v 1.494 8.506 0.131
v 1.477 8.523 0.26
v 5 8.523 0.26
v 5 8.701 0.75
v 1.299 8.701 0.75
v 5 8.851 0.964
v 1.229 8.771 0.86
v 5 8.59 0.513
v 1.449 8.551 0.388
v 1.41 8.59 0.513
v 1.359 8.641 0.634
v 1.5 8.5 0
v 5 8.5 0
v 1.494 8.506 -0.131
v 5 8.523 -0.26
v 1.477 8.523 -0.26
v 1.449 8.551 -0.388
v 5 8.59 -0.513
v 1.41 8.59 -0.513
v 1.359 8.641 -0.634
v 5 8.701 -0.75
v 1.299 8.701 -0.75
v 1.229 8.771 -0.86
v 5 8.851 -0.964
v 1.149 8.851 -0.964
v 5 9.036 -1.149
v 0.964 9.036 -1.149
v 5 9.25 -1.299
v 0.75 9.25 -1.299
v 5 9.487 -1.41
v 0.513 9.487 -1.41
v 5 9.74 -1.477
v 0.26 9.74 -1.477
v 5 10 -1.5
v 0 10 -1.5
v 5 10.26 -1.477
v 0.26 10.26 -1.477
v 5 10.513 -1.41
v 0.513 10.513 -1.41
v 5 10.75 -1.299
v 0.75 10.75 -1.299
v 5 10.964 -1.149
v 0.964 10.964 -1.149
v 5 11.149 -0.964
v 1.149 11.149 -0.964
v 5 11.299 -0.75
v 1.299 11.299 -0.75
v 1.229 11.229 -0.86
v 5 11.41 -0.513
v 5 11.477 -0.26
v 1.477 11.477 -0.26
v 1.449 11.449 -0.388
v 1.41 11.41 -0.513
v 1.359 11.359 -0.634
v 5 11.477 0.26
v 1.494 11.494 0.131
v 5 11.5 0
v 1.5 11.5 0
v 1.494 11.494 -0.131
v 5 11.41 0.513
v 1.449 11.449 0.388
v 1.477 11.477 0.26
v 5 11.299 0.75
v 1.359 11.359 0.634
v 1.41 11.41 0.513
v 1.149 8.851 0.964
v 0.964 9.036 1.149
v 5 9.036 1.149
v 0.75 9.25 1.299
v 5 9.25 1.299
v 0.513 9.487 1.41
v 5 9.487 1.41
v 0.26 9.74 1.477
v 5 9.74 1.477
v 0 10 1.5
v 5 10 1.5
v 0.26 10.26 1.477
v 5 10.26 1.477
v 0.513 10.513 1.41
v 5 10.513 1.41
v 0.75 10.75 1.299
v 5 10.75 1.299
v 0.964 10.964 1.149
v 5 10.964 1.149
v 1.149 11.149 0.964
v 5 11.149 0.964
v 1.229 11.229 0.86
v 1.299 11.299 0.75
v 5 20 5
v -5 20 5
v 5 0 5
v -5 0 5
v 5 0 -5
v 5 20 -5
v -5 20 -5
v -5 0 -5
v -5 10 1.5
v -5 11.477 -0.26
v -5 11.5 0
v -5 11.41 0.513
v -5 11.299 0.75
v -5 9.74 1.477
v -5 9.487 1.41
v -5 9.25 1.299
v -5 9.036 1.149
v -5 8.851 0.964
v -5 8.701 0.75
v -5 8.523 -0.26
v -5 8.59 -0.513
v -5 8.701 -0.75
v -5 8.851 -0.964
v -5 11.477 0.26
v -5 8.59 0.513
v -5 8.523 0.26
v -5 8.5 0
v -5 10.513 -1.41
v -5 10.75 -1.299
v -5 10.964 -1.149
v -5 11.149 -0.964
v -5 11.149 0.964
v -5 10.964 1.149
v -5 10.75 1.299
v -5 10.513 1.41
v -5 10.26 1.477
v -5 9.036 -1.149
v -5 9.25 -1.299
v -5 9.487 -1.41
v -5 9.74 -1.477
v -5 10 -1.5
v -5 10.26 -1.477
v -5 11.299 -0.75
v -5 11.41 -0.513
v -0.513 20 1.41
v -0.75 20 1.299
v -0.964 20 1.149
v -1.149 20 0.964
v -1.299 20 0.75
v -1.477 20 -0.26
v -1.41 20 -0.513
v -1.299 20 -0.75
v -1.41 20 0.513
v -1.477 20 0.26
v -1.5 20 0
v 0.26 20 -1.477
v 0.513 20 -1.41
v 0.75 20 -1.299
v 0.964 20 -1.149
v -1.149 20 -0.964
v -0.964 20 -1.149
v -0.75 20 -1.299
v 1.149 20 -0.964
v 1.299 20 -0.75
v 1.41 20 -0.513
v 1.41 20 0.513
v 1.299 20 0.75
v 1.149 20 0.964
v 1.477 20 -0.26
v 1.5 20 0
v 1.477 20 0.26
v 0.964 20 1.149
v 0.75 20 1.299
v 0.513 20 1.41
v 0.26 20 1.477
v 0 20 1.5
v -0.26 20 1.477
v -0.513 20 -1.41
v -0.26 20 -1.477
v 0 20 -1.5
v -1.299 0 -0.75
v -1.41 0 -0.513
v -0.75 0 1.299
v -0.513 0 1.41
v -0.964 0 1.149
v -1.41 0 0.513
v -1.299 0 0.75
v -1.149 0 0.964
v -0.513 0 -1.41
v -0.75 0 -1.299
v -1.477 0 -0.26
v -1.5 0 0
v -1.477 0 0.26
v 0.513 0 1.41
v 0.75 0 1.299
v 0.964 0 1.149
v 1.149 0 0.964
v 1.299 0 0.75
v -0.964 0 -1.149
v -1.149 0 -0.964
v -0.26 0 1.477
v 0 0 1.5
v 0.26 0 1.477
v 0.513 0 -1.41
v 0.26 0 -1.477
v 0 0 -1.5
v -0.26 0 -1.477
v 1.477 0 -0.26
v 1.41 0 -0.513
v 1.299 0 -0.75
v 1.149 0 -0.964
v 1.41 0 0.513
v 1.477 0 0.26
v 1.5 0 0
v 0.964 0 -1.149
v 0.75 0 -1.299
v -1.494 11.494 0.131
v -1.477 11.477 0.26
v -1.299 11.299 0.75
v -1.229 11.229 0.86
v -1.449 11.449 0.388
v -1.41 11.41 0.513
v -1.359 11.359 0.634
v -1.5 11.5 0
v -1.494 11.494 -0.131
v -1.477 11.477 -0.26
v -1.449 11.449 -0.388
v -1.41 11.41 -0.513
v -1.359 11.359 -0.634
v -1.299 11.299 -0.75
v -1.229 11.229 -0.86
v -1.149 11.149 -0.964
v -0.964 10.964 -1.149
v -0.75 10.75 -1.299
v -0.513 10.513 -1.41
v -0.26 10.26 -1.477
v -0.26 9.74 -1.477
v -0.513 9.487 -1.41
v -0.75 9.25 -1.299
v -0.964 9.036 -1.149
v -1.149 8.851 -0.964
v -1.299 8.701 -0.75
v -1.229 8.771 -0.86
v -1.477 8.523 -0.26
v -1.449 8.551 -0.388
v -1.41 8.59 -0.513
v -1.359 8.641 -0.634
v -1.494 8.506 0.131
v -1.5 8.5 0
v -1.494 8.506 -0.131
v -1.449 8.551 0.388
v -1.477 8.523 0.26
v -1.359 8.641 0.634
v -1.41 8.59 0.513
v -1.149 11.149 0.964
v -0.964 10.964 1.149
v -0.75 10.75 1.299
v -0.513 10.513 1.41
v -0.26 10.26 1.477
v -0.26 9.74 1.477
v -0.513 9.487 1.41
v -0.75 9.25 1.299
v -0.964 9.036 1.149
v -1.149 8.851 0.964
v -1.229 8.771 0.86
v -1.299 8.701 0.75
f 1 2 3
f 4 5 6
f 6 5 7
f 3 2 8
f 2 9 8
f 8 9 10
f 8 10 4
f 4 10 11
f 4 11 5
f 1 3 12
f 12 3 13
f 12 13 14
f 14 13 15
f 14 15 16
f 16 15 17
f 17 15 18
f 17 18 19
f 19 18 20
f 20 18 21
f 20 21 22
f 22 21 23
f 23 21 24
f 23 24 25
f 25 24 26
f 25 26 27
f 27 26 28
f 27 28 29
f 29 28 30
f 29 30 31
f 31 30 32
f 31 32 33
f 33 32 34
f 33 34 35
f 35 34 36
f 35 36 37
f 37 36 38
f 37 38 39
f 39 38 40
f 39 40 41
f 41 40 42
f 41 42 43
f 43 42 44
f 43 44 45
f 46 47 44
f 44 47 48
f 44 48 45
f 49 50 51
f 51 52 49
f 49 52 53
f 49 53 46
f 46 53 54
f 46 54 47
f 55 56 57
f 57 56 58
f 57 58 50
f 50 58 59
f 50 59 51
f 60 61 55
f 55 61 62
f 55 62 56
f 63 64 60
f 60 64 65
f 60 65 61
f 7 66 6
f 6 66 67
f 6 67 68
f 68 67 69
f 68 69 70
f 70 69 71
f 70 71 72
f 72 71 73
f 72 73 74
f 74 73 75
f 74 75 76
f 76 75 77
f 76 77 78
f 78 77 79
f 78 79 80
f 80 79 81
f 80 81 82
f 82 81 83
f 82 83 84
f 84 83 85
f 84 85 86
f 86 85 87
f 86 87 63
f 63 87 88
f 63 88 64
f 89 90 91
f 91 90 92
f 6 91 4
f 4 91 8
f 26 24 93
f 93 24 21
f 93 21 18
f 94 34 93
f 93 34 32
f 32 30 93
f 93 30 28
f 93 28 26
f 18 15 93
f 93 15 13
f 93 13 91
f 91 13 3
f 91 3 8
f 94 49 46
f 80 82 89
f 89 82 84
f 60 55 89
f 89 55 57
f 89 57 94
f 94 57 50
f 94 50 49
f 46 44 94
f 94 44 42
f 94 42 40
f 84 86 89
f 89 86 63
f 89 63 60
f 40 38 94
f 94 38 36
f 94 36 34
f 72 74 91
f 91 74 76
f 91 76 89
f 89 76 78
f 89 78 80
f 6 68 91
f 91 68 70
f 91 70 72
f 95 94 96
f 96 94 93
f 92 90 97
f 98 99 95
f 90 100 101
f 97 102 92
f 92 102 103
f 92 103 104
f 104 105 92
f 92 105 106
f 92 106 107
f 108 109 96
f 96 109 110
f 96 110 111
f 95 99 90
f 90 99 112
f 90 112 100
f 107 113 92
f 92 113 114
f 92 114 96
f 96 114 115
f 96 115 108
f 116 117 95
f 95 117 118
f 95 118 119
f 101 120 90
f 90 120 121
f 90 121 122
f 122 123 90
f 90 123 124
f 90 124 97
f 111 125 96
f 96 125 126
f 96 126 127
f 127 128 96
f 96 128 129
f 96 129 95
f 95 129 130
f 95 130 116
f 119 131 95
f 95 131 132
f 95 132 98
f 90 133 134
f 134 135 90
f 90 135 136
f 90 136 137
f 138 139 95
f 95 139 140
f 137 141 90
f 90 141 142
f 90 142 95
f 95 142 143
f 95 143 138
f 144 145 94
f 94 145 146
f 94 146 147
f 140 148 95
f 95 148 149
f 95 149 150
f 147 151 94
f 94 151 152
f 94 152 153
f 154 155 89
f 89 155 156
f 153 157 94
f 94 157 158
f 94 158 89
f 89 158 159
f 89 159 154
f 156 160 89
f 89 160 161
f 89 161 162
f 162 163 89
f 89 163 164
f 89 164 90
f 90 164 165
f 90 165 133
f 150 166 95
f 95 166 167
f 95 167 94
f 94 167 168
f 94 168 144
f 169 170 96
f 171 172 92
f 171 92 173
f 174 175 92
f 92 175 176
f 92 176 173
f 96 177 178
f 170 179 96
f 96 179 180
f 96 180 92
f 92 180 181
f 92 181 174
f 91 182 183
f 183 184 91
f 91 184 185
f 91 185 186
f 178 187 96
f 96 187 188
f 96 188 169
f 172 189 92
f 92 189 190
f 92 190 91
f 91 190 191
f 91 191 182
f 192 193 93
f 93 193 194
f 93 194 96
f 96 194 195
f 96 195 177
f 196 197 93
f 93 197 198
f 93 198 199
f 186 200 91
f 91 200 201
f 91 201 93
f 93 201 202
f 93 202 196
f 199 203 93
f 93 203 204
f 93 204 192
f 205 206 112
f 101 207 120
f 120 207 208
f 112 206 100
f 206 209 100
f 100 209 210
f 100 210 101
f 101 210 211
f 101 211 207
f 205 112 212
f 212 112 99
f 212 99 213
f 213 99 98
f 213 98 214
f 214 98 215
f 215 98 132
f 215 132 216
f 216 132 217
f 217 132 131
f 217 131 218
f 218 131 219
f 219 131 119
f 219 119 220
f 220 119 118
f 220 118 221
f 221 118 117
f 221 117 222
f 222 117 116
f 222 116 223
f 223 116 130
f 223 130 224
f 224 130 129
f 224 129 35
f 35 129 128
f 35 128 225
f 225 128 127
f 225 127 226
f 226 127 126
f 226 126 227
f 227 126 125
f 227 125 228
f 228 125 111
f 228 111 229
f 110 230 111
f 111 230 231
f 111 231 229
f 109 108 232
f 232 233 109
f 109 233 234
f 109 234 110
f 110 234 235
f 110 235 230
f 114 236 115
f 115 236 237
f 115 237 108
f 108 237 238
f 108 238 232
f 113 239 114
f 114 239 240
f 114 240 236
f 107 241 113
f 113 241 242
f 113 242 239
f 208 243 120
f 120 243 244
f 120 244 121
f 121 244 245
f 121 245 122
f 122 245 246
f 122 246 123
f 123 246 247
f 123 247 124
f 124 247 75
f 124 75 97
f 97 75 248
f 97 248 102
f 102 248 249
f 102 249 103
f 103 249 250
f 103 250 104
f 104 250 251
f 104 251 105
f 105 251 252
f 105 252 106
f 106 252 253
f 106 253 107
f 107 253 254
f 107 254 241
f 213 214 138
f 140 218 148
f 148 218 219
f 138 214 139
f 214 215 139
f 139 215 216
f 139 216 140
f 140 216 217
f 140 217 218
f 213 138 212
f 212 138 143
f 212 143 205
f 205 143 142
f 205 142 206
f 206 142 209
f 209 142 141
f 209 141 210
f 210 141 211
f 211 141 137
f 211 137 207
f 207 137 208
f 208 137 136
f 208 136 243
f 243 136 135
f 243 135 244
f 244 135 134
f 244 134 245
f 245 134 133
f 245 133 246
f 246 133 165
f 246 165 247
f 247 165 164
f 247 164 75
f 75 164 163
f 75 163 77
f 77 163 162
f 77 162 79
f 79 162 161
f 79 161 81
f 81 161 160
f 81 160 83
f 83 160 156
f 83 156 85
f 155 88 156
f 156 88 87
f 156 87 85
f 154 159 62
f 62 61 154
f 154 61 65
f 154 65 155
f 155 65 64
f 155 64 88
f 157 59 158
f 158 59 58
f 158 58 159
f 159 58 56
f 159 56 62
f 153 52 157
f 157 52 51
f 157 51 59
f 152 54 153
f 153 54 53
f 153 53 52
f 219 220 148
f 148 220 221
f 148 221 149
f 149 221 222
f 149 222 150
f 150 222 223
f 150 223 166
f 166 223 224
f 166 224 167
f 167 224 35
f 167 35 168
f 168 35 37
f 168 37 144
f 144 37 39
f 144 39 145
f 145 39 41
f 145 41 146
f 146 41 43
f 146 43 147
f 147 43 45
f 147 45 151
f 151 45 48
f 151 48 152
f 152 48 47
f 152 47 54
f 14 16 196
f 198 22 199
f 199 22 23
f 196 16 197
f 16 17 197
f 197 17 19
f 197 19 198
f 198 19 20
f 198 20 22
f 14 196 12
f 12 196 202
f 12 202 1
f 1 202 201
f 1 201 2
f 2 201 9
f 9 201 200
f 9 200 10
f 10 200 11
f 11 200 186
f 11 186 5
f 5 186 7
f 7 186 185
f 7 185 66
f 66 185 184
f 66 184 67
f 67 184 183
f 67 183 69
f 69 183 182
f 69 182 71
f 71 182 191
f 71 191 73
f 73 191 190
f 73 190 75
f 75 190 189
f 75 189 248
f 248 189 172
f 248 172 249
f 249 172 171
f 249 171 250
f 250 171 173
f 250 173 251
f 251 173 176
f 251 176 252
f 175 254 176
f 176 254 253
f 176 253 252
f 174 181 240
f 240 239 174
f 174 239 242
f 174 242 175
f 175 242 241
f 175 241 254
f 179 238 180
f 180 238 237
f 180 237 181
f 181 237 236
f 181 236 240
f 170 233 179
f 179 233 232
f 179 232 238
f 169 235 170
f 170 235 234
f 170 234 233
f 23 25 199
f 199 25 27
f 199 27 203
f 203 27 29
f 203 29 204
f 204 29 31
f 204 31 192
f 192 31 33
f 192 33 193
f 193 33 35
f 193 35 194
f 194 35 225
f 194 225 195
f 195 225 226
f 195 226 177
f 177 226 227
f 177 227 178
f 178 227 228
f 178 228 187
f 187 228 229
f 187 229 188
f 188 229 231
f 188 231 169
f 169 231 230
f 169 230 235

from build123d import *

# Parameters (mm, degrees)
SKETCH1_W           = 10
SKETCH1_H           = 10
BOSS_EXTRUDE1_DEPTH = 20
SKETCH4_R           = 1.5
CUT_EXTRUDE2_DEPTH  = 11
SKETCH5_R           = 1.5
CUT_EXTRUDE3_DEPTH  = 21


with BuildPart() as part:
    # Sketch1 → Boss-Extrude1 (new body)
    with BuildSketch(Plane(origin=(0, 0, 0), x_dir=(1, 0, 0), z_dir=(0, 1, 0))):
        Rectangle(SKETCH1_W, SKETCH1_H)
    extrude(amount=BOSS_EXTRUDE1_DEPTH)

    # Sketch4 → Cut-Extrude2 (cut, through all)
    with BuildSketch(Plane(origin=(5, 0, 0), x_dir=(0, 0, -1), z_dir=(1, 0, 0))):
        with Locations((0, 10)):
            Circle(SKETCH4_R)
    extrude(amount=-CUT_EXTRUDE2_DEPTH, mode=Mode.SUBTRACT)

    # Sketch5 → Cut-Extrude3 (cut, through all)
    with BuildSketch(Plane(origin=(0, 20, 0), x_dir=(1, 0, 0), z_dir=(0, 1, 0))):
        Circle(SKETCH5_R)
    extrude(amount=-CUT_EXTRUDE3_DEPTH, mode=Mode.SUBTRACT)


solid = part.part
